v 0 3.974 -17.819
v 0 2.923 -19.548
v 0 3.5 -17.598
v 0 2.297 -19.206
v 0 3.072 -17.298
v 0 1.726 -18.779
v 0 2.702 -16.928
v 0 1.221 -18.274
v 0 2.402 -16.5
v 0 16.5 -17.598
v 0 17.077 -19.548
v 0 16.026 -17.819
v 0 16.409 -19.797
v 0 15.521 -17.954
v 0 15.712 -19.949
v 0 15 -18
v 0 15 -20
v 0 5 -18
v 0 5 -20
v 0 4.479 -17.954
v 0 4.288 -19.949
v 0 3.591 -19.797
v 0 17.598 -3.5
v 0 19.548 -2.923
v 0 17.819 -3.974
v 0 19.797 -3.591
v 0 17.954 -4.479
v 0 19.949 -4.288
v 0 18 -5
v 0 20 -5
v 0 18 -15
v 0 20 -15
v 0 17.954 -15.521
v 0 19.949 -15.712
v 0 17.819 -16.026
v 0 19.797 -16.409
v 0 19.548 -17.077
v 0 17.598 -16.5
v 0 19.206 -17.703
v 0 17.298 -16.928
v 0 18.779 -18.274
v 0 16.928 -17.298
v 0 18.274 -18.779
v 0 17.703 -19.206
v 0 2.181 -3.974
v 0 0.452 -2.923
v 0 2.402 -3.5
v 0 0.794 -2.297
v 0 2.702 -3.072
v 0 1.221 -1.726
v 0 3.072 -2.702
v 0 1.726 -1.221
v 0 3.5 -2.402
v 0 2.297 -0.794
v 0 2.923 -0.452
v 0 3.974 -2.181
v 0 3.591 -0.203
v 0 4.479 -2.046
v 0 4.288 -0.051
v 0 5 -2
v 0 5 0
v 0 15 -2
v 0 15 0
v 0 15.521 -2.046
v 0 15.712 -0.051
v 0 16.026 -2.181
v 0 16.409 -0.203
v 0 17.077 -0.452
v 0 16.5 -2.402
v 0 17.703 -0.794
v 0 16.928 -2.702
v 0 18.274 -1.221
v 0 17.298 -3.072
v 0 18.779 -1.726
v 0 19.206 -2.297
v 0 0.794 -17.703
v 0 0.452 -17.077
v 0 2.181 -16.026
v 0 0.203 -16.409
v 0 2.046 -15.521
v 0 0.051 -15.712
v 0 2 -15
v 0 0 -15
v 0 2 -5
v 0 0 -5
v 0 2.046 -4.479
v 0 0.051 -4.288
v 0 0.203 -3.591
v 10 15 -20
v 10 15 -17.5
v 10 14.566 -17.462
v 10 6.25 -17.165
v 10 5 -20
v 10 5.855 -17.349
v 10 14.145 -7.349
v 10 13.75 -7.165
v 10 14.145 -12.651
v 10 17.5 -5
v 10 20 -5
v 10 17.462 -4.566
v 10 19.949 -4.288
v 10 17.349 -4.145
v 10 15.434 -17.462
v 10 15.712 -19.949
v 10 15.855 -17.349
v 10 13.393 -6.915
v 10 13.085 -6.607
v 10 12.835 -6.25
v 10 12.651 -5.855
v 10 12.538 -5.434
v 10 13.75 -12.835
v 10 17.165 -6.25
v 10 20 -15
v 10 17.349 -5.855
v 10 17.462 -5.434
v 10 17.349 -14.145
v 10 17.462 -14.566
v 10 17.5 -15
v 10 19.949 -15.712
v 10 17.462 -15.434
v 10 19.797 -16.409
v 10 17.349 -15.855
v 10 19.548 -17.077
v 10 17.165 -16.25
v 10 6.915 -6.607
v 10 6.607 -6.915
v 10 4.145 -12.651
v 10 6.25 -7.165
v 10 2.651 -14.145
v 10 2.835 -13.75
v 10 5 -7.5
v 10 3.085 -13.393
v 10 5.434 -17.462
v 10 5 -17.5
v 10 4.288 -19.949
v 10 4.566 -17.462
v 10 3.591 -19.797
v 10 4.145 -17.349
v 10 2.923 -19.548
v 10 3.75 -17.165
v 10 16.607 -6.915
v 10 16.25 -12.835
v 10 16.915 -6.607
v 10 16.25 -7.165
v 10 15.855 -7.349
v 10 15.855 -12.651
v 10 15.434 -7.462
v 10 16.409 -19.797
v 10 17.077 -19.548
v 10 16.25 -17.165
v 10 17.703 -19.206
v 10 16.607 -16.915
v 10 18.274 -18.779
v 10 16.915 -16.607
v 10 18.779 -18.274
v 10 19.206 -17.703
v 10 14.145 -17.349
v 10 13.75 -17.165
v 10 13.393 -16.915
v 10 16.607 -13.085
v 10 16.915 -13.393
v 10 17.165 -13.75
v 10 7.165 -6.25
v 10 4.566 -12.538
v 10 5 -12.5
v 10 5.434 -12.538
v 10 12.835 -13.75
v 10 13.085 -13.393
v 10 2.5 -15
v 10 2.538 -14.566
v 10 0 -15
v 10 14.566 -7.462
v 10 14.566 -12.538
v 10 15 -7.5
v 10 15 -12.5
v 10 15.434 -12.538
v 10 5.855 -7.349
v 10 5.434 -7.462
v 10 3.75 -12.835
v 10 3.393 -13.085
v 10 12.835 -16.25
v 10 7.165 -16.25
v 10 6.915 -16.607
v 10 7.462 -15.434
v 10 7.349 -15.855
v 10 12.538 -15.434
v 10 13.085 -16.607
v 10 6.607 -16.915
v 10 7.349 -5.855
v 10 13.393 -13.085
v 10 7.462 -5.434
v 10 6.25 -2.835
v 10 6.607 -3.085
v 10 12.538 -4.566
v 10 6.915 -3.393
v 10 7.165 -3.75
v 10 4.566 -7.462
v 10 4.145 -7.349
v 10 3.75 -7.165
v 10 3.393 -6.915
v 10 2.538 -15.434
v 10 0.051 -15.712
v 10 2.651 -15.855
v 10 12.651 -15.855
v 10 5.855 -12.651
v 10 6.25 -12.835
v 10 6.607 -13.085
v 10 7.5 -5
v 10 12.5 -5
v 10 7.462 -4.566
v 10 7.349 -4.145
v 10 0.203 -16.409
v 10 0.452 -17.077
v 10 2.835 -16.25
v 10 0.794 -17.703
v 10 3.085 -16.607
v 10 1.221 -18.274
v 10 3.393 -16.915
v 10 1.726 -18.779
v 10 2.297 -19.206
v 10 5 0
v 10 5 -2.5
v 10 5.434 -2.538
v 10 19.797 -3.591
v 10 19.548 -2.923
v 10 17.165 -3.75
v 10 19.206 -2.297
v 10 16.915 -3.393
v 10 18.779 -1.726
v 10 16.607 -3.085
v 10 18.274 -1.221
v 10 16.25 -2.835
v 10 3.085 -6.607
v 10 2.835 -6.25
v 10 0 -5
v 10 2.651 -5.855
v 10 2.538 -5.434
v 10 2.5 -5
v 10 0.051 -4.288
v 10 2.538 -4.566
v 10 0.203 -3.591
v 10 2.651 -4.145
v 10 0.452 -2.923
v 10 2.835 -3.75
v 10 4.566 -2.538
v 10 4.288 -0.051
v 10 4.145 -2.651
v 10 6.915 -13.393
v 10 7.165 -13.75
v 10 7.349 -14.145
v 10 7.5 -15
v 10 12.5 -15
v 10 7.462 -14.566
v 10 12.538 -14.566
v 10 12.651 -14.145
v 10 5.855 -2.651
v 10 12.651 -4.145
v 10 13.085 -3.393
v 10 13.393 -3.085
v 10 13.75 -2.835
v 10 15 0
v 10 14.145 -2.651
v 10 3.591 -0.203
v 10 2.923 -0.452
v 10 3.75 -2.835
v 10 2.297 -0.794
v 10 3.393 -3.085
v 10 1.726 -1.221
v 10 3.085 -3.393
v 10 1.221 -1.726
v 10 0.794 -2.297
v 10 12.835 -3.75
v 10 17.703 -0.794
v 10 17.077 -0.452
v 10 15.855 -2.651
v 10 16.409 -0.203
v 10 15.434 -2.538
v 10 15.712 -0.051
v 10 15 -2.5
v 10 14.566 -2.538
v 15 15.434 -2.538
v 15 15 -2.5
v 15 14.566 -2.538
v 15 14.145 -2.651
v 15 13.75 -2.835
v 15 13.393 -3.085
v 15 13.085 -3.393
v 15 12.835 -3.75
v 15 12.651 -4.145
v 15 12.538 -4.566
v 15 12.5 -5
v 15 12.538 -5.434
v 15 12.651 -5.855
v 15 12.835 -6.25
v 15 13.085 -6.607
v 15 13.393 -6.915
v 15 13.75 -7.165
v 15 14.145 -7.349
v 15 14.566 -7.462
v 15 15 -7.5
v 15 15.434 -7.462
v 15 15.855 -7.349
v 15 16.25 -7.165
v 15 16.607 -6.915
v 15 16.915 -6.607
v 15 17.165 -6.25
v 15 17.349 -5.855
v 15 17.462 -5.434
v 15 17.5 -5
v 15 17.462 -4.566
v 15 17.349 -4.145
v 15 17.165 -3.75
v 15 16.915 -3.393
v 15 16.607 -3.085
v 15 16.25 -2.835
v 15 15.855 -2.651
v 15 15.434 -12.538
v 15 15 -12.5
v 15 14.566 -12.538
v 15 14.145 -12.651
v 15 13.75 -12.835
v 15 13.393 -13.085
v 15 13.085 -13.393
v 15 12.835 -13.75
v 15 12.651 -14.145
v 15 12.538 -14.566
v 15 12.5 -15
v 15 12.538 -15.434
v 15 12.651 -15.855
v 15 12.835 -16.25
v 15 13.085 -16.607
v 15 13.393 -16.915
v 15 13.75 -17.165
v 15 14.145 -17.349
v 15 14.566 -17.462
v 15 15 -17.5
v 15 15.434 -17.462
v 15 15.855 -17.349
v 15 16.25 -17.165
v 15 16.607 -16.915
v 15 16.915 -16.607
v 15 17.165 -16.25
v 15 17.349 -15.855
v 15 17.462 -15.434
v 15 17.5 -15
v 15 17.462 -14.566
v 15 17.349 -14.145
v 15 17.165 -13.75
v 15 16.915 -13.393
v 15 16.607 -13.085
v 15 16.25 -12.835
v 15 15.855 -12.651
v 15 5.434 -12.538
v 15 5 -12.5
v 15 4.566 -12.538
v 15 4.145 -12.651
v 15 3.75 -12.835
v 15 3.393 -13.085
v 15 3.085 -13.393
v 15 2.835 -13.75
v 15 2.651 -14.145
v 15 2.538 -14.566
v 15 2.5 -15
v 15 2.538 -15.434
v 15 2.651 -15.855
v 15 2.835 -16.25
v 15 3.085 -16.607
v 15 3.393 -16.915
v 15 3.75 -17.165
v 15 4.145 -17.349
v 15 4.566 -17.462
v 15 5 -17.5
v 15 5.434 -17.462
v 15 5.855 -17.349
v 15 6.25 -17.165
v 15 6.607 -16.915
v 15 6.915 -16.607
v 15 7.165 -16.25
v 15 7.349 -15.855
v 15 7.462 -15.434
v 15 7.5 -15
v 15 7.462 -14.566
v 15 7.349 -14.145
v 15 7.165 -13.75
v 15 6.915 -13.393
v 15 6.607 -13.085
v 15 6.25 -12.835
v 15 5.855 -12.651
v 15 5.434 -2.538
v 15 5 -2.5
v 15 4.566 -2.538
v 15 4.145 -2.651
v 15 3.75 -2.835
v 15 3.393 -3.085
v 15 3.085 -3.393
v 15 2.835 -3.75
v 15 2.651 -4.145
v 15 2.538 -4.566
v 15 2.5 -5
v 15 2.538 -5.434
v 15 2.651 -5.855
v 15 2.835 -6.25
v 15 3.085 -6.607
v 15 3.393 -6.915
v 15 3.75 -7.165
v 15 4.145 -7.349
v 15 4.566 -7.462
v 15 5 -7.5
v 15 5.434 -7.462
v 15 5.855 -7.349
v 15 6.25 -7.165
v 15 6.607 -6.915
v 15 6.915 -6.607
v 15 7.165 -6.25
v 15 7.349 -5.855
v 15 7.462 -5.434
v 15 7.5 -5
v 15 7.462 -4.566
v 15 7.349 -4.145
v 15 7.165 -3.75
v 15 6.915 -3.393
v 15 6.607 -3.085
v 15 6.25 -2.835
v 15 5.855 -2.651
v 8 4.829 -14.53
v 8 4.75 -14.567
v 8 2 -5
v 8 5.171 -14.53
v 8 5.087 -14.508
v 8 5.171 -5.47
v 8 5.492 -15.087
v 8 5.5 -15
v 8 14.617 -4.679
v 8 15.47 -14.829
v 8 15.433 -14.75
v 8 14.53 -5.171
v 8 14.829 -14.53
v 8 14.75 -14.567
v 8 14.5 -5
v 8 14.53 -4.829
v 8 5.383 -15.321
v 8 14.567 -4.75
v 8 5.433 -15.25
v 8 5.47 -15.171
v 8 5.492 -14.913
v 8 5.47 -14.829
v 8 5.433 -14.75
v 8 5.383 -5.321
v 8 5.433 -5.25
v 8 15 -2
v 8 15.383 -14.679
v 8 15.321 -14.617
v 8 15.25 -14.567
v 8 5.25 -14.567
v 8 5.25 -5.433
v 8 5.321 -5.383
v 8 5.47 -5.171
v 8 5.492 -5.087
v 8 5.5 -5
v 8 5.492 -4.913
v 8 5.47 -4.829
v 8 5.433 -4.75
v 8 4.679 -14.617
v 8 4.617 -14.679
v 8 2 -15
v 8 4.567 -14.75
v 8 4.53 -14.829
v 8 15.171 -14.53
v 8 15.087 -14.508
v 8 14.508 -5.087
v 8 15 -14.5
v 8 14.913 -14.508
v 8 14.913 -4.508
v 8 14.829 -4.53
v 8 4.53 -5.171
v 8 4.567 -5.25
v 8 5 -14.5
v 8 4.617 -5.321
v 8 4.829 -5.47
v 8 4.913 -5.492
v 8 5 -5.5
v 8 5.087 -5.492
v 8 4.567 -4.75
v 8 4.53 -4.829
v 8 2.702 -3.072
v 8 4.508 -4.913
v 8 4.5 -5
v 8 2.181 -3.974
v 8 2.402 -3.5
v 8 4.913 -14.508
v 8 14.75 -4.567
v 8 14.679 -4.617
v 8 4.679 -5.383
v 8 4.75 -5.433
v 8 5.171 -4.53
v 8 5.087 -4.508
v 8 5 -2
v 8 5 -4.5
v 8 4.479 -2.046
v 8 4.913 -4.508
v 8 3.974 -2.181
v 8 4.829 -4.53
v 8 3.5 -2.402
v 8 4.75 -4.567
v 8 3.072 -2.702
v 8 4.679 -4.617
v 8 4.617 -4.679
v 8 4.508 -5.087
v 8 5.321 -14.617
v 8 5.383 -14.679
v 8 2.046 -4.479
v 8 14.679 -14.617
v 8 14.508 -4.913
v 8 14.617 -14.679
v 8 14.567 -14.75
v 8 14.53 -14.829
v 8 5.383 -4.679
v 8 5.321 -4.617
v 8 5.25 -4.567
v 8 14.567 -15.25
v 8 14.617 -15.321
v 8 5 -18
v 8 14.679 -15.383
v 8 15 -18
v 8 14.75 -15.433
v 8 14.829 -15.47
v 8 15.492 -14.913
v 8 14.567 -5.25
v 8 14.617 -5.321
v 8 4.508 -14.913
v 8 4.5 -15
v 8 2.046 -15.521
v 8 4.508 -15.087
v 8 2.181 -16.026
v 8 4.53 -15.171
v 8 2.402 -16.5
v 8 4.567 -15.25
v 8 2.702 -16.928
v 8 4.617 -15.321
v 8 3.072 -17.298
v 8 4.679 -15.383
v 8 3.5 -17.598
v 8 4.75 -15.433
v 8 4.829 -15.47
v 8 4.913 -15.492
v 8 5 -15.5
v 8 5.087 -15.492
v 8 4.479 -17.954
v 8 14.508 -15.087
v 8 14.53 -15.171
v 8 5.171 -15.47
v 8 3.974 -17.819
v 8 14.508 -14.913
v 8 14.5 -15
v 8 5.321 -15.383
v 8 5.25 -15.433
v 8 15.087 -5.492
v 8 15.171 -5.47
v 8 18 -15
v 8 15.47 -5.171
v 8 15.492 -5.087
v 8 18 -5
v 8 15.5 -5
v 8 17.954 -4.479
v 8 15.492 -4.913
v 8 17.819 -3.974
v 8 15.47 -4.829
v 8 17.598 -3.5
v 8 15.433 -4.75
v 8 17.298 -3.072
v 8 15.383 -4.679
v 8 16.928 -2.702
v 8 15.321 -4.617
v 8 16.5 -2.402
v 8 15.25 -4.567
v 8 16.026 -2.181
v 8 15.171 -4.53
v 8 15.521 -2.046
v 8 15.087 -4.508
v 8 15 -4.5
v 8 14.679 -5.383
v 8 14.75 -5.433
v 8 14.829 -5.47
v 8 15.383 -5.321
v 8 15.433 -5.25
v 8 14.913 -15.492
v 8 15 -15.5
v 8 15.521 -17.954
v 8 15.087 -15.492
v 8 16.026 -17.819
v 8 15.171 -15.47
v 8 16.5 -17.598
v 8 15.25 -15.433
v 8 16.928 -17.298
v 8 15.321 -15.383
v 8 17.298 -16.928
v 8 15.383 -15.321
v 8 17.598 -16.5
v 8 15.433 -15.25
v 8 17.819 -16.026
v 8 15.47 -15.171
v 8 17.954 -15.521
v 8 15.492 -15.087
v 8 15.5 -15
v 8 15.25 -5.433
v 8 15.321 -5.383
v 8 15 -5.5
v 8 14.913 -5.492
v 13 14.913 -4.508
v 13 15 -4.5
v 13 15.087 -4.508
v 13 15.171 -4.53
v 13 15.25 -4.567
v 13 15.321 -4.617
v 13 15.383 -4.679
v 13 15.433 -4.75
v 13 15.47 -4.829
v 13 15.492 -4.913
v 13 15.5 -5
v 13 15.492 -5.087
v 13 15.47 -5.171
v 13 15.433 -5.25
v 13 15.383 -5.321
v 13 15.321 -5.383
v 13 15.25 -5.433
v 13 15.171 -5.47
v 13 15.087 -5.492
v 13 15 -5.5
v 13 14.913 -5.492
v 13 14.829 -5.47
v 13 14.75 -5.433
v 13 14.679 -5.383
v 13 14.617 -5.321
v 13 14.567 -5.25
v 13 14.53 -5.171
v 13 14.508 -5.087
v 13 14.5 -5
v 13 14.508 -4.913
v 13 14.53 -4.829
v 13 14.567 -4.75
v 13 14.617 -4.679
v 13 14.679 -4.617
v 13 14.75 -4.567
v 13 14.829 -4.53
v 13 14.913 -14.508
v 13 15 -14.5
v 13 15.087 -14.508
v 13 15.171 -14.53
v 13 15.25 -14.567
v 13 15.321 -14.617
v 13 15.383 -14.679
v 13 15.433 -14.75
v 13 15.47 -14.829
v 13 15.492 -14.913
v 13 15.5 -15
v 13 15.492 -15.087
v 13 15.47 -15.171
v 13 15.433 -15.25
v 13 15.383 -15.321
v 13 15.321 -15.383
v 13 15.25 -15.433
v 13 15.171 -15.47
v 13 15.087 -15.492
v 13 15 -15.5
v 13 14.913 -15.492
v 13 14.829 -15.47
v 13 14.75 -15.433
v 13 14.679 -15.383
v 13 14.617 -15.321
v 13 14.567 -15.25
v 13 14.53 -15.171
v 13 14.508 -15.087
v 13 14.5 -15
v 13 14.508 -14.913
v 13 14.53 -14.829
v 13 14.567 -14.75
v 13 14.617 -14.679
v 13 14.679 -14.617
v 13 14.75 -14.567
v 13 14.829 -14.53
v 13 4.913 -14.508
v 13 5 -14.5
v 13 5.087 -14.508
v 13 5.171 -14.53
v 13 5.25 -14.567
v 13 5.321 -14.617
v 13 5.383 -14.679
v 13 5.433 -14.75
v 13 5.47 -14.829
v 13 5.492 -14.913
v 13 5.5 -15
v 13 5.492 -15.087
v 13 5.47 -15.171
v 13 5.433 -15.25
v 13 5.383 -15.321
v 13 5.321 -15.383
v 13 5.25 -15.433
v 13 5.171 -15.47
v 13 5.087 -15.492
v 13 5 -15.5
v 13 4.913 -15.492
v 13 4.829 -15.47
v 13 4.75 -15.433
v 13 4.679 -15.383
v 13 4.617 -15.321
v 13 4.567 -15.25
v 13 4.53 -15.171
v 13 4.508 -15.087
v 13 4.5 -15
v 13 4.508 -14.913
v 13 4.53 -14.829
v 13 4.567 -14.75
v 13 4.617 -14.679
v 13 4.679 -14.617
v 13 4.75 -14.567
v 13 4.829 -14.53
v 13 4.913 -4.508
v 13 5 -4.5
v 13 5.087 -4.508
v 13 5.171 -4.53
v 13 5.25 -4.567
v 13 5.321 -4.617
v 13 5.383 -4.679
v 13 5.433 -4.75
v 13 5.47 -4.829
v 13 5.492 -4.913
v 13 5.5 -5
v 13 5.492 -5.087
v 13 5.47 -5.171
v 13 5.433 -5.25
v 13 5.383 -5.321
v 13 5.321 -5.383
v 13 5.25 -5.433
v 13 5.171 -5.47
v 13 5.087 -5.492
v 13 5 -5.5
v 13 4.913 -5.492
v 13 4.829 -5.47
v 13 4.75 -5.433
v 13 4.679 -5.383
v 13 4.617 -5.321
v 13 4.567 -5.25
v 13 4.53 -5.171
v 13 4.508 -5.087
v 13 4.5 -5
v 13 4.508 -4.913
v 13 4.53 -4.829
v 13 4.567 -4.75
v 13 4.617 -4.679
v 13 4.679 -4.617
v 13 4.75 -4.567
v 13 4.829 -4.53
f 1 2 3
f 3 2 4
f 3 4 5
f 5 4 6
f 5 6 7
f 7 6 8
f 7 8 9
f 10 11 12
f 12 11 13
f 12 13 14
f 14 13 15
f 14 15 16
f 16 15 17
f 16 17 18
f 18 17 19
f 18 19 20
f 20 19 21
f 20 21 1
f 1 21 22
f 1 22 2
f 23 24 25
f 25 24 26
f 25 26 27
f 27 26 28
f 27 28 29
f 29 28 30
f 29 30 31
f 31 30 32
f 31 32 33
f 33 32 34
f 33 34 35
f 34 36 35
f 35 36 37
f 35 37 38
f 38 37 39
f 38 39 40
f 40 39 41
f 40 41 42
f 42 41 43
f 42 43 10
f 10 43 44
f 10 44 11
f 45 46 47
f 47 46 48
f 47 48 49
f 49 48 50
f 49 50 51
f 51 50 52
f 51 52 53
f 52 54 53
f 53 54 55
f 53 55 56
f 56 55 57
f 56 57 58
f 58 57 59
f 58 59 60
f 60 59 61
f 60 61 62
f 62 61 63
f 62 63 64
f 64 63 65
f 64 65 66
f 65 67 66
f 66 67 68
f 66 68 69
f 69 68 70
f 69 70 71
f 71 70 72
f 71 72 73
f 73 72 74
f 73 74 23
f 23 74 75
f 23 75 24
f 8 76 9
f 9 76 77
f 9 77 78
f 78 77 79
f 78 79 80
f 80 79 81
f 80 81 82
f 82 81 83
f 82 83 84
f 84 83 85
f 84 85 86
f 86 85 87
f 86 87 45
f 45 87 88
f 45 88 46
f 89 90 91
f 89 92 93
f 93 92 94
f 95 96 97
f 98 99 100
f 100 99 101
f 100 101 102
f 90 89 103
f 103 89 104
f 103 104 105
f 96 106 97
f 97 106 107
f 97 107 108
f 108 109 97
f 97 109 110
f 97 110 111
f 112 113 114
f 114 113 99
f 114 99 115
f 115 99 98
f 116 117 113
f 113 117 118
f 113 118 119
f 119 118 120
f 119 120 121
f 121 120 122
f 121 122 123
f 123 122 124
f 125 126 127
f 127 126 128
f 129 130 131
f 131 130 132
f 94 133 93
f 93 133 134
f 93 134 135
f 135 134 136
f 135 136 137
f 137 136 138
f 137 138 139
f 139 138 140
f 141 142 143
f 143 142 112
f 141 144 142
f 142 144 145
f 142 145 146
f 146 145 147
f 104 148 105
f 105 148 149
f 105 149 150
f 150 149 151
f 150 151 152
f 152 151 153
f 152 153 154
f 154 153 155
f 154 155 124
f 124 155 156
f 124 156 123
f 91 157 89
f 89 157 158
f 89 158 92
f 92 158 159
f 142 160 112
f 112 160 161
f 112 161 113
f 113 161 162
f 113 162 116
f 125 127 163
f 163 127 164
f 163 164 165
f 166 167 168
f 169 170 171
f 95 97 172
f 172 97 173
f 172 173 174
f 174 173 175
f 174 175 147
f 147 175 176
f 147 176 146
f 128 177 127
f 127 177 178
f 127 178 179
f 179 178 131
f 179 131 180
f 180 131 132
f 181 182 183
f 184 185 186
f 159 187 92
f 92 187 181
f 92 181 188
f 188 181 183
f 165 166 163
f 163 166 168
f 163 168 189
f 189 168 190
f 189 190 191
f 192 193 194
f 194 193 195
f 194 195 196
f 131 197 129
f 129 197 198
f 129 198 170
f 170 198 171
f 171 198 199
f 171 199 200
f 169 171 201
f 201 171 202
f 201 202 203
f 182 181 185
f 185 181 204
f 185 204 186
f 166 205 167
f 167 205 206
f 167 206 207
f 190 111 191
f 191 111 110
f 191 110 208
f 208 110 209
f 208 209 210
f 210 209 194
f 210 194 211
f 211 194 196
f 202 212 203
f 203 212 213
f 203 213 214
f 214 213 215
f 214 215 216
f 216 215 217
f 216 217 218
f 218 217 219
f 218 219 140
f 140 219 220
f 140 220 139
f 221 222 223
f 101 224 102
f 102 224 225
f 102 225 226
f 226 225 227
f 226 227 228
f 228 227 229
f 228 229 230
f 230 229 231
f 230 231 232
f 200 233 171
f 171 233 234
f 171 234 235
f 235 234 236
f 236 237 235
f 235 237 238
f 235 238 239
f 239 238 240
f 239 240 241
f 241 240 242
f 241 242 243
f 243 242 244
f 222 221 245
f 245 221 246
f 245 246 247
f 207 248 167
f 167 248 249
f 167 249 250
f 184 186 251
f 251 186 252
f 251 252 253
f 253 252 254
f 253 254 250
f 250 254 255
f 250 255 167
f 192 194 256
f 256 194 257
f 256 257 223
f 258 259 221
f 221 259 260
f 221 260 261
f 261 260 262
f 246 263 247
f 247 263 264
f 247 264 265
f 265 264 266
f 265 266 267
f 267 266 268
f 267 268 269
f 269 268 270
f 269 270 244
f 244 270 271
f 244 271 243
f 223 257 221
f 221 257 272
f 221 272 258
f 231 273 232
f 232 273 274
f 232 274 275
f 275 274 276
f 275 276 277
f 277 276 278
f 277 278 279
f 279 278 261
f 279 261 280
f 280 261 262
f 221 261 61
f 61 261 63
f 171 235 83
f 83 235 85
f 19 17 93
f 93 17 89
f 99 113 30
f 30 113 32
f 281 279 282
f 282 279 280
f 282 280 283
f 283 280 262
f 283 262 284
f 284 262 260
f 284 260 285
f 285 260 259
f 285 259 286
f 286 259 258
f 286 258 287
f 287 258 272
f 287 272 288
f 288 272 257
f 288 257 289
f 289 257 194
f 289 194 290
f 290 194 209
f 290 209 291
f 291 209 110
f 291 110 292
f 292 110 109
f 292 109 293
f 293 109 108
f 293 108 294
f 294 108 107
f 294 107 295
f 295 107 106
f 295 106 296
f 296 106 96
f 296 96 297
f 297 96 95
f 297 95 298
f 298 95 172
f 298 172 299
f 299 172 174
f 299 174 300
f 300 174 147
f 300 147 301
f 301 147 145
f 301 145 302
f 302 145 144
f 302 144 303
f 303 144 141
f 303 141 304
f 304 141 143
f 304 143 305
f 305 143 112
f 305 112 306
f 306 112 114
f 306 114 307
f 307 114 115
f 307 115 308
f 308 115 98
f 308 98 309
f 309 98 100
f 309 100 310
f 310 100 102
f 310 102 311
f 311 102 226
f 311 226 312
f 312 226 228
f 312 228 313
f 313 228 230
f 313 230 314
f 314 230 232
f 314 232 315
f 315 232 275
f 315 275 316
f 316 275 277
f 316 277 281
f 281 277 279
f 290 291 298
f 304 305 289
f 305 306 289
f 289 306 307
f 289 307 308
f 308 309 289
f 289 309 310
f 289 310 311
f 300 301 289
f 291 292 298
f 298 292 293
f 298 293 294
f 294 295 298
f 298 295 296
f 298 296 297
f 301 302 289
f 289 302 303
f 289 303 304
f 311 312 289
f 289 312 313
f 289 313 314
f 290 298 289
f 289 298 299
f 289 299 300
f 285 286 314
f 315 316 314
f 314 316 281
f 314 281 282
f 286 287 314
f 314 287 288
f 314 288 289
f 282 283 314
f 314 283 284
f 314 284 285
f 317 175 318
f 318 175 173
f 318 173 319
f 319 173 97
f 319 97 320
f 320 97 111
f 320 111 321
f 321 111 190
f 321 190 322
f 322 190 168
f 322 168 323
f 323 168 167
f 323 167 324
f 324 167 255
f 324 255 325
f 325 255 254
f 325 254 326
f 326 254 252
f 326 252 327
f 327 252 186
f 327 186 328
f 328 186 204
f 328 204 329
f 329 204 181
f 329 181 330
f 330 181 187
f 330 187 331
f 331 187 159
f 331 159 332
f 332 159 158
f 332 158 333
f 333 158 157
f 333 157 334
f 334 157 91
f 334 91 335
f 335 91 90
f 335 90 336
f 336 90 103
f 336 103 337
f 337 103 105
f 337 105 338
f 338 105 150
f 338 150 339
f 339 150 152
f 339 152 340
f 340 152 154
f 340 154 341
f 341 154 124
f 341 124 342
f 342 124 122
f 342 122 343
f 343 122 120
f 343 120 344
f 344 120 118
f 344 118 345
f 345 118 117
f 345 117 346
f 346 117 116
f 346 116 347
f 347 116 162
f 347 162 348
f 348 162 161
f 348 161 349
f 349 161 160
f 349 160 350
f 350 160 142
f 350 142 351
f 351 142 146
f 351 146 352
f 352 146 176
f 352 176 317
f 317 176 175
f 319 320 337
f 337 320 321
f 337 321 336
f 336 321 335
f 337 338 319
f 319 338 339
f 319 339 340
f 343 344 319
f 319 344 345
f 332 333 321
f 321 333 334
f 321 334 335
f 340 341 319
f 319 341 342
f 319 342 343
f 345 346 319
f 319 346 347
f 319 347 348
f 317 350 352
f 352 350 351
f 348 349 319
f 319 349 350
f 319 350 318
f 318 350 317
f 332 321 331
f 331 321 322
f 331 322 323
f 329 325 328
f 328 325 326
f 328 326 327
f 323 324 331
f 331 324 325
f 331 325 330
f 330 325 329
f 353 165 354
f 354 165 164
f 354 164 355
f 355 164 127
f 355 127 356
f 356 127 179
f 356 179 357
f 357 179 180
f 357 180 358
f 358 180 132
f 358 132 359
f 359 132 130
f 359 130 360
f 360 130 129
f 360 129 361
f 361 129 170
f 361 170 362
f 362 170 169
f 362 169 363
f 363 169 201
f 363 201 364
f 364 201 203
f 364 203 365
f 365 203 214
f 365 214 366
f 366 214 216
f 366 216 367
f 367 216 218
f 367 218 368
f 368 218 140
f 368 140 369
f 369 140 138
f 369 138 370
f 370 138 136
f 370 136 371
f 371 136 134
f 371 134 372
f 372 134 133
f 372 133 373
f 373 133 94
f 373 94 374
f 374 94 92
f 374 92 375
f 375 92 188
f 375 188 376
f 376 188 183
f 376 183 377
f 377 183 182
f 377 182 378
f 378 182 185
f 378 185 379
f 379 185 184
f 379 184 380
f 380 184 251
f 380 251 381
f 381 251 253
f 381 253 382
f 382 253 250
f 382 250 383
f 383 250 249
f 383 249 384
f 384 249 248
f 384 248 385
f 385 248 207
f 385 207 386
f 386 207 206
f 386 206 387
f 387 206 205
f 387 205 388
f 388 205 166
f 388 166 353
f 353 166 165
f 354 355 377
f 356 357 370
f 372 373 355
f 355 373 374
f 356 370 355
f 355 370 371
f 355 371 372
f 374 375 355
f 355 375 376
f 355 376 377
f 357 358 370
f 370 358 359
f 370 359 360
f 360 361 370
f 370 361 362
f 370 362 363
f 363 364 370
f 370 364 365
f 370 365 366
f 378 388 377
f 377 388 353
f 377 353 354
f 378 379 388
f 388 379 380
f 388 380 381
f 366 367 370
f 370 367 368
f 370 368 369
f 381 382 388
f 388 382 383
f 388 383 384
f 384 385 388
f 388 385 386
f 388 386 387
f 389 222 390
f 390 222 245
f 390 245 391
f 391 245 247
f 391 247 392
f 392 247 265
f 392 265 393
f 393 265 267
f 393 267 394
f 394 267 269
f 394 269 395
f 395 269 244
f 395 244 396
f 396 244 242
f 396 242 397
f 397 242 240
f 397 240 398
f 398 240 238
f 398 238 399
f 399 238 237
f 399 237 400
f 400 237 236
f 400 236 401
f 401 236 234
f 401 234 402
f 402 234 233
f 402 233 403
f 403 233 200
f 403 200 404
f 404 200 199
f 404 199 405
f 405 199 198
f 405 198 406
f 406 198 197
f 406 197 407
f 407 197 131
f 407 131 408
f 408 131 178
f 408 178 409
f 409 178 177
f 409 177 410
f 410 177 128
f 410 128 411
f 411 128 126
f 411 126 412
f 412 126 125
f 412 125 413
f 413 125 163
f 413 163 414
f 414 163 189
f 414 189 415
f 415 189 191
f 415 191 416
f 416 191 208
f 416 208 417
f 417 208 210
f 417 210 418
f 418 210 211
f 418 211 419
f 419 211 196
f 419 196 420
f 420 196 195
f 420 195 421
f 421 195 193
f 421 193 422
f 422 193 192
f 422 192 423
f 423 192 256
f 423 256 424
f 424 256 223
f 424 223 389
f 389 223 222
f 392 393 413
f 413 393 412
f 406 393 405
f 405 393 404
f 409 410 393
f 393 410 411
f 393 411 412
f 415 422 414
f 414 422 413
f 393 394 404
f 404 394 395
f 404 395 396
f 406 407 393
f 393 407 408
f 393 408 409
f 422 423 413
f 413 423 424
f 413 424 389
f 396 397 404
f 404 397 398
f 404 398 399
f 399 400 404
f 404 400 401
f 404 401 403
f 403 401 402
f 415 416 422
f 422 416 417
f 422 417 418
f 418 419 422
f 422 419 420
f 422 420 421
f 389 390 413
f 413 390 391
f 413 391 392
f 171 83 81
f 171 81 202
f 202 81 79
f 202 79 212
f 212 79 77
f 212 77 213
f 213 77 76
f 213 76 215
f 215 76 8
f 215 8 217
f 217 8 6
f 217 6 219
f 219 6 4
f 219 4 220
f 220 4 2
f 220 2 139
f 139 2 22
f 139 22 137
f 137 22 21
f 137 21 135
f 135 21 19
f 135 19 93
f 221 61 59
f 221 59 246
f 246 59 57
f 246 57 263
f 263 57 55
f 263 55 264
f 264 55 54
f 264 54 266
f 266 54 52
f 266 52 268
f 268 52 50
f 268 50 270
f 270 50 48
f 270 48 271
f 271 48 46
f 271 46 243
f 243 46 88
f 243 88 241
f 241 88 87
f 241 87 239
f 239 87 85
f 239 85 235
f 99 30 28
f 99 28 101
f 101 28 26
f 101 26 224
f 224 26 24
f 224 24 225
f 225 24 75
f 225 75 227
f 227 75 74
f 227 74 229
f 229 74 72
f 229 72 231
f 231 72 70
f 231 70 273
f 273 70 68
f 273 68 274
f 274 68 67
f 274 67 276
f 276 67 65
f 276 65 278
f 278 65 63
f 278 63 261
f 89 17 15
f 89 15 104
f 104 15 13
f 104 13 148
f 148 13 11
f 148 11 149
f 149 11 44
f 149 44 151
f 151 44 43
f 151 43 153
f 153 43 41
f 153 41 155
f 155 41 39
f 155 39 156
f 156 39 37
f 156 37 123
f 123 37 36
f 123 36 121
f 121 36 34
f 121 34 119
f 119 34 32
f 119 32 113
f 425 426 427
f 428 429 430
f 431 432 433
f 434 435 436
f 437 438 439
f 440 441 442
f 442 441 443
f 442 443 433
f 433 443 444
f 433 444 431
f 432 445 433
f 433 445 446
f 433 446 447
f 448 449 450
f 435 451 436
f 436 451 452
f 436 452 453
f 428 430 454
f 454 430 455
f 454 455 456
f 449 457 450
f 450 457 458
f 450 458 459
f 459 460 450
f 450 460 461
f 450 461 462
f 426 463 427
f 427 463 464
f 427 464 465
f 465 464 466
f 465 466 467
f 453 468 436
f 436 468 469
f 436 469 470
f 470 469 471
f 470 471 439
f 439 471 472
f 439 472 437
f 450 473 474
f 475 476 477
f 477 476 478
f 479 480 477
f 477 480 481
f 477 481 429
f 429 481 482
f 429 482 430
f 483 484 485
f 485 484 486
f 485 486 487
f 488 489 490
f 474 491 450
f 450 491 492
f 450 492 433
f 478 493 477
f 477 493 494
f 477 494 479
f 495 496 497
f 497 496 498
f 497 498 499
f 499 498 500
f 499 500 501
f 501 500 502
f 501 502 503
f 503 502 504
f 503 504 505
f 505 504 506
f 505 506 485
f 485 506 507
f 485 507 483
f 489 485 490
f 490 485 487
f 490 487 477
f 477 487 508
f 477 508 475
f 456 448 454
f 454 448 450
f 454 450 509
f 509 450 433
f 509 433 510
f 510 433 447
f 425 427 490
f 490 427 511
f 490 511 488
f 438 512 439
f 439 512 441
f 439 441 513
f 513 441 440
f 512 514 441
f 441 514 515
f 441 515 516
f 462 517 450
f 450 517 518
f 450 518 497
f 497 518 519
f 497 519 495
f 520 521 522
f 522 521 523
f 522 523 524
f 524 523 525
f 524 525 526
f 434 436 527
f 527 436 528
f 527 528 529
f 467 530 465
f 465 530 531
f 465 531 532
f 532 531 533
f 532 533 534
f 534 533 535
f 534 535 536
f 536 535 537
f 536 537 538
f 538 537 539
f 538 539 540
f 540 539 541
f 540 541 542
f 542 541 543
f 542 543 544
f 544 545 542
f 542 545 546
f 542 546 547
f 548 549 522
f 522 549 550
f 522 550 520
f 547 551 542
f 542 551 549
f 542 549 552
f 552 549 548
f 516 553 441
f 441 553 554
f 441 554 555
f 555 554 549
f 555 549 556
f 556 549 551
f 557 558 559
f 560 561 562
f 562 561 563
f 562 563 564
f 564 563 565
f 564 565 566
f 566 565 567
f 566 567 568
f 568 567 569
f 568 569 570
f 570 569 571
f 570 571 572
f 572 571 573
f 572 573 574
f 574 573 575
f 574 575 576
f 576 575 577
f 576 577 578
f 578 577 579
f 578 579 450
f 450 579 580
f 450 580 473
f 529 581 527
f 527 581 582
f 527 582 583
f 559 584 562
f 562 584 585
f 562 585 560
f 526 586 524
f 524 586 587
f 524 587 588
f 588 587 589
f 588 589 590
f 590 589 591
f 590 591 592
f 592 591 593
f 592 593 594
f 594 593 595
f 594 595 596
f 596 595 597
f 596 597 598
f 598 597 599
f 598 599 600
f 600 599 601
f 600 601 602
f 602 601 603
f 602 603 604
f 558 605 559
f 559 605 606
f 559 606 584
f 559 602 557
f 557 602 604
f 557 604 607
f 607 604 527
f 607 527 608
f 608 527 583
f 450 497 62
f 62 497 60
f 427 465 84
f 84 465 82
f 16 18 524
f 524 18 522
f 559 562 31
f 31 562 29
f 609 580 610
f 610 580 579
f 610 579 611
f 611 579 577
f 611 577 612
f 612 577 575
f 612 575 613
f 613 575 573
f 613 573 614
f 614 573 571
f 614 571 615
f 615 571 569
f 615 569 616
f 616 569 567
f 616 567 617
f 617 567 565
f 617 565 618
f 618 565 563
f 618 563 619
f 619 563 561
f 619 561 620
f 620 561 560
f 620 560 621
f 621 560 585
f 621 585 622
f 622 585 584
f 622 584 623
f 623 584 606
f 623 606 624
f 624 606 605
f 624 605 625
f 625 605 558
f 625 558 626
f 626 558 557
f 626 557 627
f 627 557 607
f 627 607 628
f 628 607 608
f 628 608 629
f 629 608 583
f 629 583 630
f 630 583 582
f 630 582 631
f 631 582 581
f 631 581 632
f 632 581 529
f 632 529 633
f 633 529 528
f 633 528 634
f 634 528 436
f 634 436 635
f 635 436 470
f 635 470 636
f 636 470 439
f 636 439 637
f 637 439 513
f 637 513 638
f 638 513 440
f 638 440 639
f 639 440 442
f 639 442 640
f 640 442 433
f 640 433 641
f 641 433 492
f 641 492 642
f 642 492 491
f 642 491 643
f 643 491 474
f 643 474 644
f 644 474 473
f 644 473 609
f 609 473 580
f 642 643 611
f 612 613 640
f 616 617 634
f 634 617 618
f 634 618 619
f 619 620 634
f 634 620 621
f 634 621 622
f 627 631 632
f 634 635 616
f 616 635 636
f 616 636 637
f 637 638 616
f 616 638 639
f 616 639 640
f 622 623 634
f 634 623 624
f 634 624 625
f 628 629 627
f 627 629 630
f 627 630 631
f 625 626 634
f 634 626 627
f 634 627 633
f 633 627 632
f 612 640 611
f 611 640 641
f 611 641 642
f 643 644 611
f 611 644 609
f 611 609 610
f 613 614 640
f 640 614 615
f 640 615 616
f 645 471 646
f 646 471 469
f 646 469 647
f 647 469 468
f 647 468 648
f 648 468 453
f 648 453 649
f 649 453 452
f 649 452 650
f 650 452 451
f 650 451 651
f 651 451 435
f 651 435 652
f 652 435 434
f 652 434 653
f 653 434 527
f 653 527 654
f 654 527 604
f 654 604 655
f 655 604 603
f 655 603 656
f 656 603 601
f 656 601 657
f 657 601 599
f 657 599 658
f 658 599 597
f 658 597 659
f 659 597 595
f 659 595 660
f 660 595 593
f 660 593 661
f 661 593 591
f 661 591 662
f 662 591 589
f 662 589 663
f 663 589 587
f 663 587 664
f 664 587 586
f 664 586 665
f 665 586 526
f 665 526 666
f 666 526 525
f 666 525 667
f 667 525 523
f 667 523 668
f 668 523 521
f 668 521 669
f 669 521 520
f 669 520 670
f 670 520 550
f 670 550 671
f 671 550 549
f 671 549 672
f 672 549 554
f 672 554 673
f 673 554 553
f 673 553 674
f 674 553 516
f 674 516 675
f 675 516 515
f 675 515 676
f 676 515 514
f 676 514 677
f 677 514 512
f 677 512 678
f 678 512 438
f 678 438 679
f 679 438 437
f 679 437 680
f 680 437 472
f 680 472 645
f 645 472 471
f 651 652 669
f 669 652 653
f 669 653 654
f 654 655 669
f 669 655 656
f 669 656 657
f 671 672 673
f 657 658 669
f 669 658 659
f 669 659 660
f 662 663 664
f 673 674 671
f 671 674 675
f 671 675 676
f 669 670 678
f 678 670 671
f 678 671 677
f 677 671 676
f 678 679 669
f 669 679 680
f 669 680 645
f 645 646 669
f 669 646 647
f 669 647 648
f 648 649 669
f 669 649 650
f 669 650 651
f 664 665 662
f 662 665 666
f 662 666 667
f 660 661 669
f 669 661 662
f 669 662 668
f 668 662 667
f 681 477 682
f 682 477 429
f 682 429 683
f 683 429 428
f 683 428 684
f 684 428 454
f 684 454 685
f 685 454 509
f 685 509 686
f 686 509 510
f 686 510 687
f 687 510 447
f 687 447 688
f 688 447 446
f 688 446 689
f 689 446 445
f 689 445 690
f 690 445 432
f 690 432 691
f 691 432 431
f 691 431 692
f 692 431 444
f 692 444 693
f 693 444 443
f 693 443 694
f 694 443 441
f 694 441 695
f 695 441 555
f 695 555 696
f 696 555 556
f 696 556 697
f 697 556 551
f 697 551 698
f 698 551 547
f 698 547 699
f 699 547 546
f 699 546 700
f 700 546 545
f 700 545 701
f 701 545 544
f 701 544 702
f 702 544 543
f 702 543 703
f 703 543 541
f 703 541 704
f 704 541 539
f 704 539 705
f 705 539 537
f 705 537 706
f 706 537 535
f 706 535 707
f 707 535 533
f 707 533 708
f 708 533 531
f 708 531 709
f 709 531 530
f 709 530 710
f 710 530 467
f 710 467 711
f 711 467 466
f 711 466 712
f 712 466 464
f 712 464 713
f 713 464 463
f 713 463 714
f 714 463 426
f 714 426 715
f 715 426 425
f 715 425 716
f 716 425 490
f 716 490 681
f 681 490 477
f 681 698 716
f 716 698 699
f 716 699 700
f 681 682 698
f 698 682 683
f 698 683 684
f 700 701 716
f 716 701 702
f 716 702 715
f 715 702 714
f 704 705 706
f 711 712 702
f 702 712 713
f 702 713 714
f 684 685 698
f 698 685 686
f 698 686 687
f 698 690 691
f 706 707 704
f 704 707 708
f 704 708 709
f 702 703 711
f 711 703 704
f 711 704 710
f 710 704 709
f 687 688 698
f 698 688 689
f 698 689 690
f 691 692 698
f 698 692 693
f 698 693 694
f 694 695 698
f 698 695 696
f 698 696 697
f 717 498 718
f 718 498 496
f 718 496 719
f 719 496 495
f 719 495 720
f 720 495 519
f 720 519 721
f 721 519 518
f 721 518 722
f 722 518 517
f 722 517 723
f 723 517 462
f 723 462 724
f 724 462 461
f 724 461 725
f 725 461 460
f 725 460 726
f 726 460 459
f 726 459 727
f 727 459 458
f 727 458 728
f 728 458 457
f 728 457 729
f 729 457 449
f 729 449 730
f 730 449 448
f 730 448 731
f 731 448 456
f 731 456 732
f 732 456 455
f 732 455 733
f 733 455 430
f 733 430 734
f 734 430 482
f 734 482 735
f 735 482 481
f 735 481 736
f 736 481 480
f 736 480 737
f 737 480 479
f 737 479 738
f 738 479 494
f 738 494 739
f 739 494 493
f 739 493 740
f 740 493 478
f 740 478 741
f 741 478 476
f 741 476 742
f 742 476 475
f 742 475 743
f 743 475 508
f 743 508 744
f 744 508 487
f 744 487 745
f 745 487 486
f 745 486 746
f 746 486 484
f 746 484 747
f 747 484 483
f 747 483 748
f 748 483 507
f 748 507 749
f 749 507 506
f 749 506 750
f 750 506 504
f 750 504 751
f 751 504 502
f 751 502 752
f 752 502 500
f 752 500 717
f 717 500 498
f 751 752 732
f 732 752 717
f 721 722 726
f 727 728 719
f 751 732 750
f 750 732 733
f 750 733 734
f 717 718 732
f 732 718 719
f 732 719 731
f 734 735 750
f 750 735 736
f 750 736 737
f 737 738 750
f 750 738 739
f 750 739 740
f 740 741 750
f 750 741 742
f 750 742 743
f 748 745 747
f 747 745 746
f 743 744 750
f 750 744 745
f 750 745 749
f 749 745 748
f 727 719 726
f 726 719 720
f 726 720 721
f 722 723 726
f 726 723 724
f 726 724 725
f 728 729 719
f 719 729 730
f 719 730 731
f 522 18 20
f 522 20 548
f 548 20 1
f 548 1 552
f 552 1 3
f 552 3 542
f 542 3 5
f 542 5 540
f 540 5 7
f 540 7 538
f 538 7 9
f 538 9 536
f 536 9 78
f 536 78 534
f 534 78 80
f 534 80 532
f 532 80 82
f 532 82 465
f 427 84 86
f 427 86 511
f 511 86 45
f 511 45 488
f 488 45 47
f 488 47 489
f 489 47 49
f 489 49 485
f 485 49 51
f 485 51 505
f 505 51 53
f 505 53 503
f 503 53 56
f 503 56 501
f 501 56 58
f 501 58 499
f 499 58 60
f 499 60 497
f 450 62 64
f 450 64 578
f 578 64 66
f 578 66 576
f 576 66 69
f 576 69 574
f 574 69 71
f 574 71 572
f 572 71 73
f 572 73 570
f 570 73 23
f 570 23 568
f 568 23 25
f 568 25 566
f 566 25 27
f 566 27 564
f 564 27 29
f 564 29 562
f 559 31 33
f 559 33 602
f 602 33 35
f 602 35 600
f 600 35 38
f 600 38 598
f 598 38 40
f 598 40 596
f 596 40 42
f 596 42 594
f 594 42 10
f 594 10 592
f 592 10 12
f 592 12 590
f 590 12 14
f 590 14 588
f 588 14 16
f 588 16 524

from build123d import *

# Parameters (mm, degrees)
SKETCH5_W           = 20
SKETCH5_H           = 20
BOSS_EXTRUDE1_DEPTH = 10
SKETCH6_R           = 2.5
BOSS_EXTRUDE2_DEPTH = 5
FILLET1_R           = 5
SHELL2_T            = -2


with BuildPart() as part:
    # Sketch5 → Boss-Extrude1 (new body)
    with BuildSketch(Plane(origin=(0, 0, 0), x_dir=(0, 0, -1), z_dir=(1, 0, 0))):
        with Locations((10, 10)):
            Rectangle(SKETCH5_W, SKETCH5_H)
    extrude(amount=BOSS_EXTRUDE1_DEPTH)

    # Sketch6 → Boss-Extrude2 (add)
    with BuildSketch(Plane(origin=(10, 0, 0), x_dir=(0, 0, -1), z_dir=(1, 0, 0))):
        with Locations(Location((5, 15, 0), (0, 0, 180))):
            Circle(SKETCH6_R)
        with Locations(Location((15, 15, 0), (0, 0, 180))):
            Circle(SKETCH6_R)
        with Locations(Location((15, 5, 0), (0, 0, 180))):
            Circle(SKETCH6_R)
        with Locations(Location((5, 5, 0), (0, 0, 180))):
            Circle(SKETCH6_R)
    extrude(amount=BOSS_EXTRUDE2_DEPTH)

    # Fillet1
    fillet1_edges = [part.edges().sort_by_distance(p)[0] for p in [
        (5, 20, 0),
        (5, 20, -20),
        (5, 0, -20),
        (5, 0, 0),
    ]]
    fillet(fillet1_edges, radius=FILLET1_R)

    # Shell2
    shell2_openings = [part.faces().sort_by_distance(p)[0] for p in [
        (0, 10, -10),
    ]]
    offset(amount=SHELL2_T, openings=shell2_openings, kind=Kind.INTERSECTION)


solid = part.part
